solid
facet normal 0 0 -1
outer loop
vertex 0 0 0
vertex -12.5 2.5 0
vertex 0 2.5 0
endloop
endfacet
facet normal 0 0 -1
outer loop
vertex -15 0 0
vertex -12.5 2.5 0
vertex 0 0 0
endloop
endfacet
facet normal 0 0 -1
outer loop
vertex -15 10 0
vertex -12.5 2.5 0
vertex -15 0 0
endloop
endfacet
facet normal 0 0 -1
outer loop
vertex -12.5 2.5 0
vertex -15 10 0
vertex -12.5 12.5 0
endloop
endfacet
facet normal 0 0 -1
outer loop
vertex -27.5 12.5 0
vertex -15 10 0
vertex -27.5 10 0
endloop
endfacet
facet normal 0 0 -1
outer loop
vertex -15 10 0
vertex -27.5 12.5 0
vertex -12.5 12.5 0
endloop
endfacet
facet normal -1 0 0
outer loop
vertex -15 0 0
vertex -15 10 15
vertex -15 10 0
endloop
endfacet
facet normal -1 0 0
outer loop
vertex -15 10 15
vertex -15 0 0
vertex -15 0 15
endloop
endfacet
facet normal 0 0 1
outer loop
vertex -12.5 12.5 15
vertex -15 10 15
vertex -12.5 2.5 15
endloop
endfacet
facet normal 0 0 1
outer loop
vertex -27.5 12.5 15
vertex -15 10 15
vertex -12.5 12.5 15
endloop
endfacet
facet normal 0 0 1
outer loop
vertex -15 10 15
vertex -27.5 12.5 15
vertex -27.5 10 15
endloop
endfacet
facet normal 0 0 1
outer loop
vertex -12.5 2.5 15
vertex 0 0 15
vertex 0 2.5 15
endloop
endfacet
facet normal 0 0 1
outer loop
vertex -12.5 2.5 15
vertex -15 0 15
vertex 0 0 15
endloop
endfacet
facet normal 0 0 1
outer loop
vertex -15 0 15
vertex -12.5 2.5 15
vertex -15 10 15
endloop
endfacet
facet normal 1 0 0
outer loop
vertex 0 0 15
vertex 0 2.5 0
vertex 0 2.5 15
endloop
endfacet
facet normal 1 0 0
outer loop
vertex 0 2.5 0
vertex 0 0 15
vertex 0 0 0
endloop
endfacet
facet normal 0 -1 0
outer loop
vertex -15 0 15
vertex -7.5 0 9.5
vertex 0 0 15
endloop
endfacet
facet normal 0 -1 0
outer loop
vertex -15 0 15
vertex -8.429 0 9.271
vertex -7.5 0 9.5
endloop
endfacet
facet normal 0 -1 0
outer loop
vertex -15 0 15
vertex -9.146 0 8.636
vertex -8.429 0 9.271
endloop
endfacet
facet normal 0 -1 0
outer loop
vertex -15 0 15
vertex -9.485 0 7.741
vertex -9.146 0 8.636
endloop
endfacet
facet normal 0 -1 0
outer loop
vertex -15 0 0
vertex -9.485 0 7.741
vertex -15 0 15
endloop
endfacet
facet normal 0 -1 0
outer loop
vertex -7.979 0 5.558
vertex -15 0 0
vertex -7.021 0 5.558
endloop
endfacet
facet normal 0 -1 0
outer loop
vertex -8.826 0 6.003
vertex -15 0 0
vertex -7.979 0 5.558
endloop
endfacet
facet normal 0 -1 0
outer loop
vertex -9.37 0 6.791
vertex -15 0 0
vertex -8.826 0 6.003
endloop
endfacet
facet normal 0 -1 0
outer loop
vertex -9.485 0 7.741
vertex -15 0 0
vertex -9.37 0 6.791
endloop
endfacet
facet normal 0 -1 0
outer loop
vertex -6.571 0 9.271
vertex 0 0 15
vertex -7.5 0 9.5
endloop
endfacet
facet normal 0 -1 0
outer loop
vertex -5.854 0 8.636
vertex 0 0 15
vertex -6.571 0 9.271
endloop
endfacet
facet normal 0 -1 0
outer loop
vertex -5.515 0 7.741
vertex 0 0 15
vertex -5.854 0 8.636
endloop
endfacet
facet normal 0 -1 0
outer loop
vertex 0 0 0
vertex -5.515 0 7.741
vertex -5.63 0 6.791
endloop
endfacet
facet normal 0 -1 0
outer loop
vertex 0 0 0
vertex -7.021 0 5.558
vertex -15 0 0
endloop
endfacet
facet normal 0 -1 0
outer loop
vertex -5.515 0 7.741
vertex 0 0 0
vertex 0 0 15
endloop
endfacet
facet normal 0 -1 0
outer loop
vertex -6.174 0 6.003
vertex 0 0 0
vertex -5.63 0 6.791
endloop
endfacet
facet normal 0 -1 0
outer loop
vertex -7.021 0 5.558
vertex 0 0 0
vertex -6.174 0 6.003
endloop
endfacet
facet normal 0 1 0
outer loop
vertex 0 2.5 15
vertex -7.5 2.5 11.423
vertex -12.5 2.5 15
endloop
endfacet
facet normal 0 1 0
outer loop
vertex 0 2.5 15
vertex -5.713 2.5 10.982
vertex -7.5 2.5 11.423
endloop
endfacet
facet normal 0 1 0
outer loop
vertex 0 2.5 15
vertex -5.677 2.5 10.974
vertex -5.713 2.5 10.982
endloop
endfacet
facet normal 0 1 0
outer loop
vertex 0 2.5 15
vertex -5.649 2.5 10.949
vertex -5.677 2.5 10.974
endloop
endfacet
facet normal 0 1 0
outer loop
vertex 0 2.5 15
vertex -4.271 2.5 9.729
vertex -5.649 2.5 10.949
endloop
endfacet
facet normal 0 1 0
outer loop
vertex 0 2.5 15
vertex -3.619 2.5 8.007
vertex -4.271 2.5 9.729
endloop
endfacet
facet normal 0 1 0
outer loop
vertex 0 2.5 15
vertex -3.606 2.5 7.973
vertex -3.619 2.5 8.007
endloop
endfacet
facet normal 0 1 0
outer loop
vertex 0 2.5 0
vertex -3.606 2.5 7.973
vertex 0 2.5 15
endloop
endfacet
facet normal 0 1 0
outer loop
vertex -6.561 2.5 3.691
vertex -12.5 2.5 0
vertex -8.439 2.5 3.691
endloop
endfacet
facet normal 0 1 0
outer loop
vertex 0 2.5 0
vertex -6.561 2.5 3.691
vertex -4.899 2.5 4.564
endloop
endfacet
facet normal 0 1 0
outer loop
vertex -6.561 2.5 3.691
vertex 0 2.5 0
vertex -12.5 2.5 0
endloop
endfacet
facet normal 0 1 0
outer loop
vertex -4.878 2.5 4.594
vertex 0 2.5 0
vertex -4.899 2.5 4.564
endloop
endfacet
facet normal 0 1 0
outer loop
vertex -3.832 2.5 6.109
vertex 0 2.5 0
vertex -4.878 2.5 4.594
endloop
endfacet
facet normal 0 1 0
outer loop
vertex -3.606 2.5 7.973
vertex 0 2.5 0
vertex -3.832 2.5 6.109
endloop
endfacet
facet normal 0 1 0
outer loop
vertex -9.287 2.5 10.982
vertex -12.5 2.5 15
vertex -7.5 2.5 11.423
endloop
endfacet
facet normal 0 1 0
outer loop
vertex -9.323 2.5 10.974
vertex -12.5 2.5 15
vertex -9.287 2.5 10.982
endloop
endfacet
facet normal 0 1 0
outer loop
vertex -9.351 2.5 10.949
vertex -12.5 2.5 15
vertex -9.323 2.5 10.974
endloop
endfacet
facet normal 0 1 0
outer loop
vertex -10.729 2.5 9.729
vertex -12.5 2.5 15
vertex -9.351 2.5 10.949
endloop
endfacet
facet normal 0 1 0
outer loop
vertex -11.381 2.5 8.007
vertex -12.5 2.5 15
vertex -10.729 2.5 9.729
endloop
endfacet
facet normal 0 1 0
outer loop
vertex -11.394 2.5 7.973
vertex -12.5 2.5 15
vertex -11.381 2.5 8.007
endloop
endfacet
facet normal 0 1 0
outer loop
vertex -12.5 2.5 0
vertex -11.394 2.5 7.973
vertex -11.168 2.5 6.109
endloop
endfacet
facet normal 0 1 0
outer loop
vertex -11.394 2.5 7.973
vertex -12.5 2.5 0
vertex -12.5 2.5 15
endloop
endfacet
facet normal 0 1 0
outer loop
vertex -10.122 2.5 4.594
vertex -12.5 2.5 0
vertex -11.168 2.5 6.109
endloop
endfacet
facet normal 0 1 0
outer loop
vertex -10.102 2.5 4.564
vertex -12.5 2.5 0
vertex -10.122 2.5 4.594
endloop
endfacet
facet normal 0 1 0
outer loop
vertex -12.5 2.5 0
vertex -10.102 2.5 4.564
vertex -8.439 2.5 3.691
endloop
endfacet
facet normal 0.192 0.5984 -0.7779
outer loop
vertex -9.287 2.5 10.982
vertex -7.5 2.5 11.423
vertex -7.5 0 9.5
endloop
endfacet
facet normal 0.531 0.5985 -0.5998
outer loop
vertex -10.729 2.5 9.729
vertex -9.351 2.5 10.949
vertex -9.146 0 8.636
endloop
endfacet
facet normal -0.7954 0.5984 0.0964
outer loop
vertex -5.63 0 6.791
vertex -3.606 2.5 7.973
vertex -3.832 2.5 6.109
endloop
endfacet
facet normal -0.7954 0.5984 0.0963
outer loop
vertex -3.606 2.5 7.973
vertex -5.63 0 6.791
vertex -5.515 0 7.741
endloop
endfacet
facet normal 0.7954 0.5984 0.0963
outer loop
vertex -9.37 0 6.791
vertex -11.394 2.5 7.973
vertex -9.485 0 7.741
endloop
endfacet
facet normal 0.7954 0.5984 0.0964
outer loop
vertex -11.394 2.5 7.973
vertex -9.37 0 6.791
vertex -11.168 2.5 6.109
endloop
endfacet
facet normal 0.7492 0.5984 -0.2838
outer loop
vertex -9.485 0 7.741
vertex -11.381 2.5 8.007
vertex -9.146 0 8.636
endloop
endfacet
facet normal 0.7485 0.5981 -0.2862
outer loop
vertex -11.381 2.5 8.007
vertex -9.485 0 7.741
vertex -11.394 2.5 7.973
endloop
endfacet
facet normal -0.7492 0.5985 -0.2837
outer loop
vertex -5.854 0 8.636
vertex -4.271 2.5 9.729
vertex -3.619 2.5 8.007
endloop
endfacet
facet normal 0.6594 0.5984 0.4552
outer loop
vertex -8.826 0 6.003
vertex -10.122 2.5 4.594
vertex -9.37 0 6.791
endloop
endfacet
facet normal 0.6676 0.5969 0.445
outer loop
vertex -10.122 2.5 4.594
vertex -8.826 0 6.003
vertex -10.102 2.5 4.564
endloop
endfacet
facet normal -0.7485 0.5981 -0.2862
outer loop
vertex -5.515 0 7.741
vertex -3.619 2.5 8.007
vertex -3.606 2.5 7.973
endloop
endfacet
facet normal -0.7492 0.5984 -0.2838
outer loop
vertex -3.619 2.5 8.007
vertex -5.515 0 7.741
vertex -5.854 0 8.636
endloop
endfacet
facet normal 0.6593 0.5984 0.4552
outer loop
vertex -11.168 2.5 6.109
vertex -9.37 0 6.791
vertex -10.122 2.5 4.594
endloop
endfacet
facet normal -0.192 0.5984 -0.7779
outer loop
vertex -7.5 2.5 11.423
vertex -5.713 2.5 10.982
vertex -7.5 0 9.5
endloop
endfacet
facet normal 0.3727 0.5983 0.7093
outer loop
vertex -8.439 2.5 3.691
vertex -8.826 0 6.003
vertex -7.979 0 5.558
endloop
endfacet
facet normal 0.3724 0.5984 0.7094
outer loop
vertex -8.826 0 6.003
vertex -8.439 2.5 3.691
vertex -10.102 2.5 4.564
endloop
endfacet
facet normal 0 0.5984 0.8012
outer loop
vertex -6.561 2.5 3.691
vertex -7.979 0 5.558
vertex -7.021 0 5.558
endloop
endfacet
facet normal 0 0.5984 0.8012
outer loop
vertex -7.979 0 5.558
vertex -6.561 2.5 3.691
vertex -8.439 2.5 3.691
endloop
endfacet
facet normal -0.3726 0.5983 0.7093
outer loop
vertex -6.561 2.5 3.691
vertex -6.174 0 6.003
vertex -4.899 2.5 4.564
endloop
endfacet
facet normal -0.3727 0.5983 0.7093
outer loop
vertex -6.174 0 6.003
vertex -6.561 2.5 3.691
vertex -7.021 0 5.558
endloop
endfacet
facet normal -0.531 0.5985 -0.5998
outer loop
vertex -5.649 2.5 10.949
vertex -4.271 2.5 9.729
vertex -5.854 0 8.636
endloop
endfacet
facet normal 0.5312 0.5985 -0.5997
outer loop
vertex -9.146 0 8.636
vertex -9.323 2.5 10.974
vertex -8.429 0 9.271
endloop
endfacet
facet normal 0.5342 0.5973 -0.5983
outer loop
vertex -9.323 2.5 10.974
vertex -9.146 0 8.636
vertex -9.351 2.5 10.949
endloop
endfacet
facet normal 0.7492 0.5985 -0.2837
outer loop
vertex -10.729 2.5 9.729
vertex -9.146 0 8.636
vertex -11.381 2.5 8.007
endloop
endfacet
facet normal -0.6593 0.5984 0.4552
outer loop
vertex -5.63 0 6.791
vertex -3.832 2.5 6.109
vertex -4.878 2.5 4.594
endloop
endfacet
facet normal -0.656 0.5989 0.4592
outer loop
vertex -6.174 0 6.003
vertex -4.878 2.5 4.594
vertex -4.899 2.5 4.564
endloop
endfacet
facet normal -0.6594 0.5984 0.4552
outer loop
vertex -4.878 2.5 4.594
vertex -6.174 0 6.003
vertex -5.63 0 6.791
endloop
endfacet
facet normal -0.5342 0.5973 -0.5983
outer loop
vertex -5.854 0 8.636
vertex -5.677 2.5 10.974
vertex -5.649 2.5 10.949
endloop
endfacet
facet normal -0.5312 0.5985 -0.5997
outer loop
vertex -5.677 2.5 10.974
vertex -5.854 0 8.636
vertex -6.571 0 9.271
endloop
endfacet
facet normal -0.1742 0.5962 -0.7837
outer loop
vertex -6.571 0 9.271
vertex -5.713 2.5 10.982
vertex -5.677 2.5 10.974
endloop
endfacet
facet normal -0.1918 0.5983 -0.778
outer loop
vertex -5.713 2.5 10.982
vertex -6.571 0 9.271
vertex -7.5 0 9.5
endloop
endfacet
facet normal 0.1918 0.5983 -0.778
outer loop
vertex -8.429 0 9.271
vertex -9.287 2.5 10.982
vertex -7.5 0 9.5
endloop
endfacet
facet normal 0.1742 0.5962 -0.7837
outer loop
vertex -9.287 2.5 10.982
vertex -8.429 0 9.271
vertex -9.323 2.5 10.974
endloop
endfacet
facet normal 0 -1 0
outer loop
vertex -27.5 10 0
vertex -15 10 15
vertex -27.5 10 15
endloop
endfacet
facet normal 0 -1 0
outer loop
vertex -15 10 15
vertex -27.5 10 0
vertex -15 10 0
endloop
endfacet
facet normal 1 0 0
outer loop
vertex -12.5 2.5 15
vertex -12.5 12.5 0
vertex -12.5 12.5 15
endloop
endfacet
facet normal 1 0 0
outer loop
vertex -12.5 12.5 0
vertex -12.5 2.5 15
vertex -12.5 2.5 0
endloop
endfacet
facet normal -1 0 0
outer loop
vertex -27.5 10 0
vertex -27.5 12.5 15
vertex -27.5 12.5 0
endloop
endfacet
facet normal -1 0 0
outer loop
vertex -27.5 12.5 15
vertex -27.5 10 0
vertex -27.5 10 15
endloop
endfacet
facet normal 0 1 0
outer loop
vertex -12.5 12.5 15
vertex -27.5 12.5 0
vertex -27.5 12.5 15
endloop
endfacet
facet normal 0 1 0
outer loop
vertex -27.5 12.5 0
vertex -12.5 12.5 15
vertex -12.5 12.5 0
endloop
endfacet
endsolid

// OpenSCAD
flythickness=10;
width=15;
holderheight=17;
thickness=2.5;

holderheight=15;

rotate([0, -90, 0]) {
difference() {
    cube([width, thickness, holderheight]);
    translate([width / 2, thickness+0.1, holderheight / 2]) rotate([90, 0, 0])  cylinder(h=thickness+0.1, r1=4, r2=2);    
}

translate([0, 0, holderheight - thickness]) cube([width, flythickness, thickness]);
translate([0, flythickness, holderheight - thickness]) cube([width, thickness, holderheight]);
}
